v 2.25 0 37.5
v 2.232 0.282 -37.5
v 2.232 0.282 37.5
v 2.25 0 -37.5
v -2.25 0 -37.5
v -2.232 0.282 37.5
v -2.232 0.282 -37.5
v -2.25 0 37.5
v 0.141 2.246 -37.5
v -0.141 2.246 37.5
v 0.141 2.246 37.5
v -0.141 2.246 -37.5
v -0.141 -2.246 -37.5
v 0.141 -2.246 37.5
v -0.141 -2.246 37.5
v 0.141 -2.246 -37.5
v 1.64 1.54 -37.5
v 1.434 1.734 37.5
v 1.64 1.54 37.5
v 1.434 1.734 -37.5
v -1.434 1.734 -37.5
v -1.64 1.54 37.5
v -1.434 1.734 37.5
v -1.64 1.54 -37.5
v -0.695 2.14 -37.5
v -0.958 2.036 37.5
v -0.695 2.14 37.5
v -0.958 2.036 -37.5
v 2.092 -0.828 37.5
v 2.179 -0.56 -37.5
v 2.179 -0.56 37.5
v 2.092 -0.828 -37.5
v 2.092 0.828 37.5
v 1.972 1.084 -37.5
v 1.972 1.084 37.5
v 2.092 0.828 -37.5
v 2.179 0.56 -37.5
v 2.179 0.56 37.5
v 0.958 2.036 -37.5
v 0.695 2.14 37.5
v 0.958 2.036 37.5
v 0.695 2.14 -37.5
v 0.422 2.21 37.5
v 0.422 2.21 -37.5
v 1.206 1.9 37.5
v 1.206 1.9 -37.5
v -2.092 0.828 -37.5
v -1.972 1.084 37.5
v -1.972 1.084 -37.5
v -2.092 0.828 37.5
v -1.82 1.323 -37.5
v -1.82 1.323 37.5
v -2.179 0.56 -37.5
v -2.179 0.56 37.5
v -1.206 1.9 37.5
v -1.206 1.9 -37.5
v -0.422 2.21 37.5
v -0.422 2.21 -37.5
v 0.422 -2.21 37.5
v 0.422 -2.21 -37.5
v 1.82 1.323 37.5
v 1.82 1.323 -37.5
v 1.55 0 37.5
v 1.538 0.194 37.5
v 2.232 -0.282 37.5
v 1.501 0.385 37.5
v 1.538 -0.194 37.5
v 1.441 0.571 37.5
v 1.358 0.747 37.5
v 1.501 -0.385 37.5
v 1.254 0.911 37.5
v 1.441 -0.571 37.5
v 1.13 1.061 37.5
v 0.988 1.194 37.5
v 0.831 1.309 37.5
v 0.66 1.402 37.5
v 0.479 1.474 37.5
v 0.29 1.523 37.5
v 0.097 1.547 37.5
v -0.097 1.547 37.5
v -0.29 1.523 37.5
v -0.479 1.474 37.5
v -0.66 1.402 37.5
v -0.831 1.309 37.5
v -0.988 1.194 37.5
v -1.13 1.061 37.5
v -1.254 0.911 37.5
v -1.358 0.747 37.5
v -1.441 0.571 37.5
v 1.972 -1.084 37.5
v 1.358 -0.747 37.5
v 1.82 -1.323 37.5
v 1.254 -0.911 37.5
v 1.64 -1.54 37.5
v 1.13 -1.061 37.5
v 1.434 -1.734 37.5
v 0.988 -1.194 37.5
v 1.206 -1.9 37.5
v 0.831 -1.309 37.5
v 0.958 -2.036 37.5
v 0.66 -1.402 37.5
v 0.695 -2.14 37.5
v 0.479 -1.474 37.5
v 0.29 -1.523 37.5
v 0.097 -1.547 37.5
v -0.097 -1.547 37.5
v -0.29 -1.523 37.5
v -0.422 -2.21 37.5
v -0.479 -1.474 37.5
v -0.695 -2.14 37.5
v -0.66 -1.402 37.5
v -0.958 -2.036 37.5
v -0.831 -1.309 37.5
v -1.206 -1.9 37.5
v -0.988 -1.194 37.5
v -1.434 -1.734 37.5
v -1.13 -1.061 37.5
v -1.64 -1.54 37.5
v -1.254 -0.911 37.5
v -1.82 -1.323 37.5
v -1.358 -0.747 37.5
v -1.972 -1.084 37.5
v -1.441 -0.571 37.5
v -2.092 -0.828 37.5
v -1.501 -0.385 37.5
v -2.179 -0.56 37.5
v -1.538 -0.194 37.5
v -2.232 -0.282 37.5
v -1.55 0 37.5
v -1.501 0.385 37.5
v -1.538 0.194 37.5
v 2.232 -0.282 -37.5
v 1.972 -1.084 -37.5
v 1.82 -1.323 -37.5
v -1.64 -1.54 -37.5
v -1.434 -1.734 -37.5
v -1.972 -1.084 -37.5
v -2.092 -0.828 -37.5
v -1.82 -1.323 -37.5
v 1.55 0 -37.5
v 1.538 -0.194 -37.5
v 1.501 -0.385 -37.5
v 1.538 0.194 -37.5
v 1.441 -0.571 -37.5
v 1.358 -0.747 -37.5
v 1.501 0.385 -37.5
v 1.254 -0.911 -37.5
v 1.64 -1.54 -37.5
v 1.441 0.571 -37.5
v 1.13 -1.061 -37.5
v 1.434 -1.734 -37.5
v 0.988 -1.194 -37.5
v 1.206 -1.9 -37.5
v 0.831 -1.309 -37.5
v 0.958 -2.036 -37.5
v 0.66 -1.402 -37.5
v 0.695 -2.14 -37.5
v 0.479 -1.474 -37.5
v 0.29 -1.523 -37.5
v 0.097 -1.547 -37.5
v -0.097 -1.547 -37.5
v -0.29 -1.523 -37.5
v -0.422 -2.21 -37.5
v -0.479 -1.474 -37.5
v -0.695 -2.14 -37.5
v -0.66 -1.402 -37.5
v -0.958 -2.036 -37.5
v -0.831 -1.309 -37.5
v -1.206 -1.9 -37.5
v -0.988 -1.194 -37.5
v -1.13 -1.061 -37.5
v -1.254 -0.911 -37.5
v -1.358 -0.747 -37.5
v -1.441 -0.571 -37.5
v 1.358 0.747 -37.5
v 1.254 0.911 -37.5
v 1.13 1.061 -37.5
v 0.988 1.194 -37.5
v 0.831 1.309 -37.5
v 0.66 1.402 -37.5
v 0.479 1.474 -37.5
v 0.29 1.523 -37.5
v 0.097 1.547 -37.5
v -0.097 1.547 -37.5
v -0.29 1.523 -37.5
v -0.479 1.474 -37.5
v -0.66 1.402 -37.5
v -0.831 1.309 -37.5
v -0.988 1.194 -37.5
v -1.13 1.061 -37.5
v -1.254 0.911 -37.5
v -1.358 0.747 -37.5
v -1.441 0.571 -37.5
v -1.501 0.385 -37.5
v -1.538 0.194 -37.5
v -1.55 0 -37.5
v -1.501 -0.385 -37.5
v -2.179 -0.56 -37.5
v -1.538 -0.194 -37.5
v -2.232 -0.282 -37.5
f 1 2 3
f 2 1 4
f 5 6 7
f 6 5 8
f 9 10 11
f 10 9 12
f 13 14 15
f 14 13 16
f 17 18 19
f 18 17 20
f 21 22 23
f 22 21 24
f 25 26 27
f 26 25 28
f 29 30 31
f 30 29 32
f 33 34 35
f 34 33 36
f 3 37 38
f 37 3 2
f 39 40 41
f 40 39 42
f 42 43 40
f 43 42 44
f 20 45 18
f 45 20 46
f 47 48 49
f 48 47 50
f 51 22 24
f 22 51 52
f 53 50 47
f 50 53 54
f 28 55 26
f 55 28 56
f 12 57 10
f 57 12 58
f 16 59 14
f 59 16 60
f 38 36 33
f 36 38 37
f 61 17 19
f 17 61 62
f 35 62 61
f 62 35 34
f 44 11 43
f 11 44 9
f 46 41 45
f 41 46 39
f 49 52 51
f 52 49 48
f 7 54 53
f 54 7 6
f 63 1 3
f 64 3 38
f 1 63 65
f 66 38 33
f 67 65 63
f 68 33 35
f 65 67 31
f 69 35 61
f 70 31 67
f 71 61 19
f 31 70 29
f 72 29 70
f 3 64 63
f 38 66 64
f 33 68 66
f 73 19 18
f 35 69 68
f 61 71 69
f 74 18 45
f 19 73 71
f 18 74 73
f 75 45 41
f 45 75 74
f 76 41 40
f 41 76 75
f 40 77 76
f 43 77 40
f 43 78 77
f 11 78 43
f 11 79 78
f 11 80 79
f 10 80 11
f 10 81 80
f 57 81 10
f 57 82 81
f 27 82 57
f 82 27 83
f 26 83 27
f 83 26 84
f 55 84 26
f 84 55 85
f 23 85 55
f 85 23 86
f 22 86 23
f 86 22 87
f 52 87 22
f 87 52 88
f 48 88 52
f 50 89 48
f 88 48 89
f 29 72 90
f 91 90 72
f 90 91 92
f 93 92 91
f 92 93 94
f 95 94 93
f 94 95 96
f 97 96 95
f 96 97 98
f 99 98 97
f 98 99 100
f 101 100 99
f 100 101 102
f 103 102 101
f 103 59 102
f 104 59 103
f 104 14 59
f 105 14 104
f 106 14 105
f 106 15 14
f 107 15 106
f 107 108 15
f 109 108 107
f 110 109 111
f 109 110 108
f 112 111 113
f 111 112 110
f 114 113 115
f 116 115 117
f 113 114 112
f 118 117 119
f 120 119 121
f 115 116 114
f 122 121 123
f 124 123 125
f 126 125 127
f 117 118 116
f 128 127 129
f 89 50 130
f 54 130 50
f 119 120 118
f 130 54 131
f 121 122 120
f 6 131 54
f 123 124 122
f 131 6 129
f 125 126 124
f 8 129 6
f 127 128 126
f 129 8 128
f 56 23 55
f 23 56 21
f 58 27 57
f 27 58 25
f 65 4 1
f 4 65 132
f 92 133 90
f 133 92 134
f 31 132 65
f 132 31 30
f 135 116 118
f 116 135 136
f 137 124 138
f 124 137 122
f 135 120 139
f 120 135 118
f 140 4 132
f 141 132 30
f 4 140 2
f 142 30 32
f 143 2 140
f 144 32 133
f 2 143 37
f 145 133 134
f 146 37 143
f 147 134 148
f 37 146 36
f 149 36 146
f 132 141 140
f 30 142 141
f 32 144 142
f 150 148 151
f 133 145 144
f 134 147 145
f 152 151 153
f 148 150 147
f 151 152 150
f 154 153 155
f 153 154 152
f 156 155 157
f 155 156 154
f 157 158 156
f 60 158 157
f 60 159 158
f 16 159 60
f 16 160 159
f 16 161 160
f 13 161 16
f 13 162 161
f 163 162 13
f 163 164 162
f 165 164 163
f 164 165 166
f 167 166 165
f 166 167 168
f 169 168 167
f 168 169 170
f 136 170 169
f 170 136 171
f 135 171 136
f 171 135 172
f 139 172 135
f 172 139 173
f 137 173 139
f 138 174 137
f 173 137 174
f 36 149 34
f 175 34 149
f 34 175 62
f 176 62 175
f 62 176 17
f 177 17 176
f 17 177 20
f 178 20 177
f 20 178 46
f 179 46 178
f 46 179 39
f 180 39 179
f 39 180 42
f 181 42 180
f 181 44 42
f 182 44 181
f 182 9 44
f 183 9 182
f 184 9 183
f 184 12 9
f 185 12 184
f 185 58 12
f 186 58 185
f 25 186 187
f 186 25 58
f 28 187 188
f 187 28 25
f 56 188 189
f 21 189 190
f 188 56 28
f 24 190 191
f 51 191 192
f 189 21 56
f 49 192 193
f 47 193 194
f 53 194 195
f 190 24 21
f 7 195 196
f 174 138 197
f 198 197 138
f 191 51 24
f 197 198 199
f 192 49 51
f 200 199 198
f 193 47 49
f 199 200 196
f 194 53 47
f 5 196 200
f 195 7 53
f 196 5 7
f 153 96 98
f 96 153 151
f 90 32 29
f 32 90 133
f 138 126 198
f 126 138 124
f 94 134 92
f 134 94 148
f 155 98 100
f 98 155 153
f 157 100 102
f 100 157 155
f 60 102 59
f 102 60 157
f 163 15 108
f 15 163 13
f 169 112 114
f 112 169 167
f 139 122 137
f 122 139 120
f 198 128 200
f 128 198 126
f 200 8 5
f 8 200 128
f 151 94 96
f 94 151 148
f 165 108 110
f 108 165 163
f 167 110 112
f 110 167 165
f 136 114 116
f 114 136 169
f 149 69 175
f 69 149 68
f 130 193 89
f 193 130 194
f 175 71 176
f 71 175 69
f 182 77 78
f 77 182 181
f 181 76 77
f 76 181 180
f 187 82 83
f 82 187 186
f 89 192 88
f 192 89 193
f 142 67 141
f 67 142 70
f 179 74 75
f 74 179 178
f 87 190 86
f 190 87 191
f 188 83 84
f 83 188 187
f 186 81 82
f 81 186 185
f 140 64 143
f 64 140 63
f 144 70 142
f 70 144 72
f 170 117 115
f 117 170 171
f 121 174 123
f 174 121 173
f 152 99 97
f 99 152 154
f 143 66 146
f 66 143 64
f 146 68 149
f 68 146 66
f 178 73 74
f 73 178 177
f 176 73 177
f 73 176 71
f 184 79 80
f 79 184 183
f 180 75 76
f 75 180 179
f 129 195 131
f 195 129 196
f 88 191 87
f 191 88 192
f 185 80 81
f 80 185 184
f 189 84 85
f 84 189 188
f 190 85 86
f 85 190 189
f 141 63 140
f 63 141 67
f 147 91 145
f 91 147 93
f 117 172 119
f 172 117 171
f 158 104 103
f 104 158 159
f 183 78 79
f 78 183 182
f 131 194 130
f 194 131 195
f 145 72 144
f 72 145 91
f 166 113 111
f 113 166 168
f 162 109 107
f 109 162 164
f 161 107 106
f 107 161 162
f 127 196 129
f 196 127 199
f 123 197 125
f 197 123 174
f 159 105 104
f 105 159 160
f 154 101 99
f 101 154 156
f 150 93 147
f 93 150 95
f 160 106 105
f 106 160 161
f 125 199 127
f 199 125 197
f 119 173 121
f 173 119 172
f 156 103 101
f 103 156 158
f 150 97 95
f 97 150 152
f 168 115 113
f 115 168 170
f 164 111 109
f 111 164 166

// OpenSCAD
$fn = 50;


difference() {
	union() {
		translate(v = [0, 0, -37.5000000000]) {
			cylinder(h = 75, r = 2.2500000000);
		}
	}
	union() {
		translate(v = [0, 0, -100.0000000000]) {
			cylinder(h = 200, r = 1.5500000000);
		}
	}
}
